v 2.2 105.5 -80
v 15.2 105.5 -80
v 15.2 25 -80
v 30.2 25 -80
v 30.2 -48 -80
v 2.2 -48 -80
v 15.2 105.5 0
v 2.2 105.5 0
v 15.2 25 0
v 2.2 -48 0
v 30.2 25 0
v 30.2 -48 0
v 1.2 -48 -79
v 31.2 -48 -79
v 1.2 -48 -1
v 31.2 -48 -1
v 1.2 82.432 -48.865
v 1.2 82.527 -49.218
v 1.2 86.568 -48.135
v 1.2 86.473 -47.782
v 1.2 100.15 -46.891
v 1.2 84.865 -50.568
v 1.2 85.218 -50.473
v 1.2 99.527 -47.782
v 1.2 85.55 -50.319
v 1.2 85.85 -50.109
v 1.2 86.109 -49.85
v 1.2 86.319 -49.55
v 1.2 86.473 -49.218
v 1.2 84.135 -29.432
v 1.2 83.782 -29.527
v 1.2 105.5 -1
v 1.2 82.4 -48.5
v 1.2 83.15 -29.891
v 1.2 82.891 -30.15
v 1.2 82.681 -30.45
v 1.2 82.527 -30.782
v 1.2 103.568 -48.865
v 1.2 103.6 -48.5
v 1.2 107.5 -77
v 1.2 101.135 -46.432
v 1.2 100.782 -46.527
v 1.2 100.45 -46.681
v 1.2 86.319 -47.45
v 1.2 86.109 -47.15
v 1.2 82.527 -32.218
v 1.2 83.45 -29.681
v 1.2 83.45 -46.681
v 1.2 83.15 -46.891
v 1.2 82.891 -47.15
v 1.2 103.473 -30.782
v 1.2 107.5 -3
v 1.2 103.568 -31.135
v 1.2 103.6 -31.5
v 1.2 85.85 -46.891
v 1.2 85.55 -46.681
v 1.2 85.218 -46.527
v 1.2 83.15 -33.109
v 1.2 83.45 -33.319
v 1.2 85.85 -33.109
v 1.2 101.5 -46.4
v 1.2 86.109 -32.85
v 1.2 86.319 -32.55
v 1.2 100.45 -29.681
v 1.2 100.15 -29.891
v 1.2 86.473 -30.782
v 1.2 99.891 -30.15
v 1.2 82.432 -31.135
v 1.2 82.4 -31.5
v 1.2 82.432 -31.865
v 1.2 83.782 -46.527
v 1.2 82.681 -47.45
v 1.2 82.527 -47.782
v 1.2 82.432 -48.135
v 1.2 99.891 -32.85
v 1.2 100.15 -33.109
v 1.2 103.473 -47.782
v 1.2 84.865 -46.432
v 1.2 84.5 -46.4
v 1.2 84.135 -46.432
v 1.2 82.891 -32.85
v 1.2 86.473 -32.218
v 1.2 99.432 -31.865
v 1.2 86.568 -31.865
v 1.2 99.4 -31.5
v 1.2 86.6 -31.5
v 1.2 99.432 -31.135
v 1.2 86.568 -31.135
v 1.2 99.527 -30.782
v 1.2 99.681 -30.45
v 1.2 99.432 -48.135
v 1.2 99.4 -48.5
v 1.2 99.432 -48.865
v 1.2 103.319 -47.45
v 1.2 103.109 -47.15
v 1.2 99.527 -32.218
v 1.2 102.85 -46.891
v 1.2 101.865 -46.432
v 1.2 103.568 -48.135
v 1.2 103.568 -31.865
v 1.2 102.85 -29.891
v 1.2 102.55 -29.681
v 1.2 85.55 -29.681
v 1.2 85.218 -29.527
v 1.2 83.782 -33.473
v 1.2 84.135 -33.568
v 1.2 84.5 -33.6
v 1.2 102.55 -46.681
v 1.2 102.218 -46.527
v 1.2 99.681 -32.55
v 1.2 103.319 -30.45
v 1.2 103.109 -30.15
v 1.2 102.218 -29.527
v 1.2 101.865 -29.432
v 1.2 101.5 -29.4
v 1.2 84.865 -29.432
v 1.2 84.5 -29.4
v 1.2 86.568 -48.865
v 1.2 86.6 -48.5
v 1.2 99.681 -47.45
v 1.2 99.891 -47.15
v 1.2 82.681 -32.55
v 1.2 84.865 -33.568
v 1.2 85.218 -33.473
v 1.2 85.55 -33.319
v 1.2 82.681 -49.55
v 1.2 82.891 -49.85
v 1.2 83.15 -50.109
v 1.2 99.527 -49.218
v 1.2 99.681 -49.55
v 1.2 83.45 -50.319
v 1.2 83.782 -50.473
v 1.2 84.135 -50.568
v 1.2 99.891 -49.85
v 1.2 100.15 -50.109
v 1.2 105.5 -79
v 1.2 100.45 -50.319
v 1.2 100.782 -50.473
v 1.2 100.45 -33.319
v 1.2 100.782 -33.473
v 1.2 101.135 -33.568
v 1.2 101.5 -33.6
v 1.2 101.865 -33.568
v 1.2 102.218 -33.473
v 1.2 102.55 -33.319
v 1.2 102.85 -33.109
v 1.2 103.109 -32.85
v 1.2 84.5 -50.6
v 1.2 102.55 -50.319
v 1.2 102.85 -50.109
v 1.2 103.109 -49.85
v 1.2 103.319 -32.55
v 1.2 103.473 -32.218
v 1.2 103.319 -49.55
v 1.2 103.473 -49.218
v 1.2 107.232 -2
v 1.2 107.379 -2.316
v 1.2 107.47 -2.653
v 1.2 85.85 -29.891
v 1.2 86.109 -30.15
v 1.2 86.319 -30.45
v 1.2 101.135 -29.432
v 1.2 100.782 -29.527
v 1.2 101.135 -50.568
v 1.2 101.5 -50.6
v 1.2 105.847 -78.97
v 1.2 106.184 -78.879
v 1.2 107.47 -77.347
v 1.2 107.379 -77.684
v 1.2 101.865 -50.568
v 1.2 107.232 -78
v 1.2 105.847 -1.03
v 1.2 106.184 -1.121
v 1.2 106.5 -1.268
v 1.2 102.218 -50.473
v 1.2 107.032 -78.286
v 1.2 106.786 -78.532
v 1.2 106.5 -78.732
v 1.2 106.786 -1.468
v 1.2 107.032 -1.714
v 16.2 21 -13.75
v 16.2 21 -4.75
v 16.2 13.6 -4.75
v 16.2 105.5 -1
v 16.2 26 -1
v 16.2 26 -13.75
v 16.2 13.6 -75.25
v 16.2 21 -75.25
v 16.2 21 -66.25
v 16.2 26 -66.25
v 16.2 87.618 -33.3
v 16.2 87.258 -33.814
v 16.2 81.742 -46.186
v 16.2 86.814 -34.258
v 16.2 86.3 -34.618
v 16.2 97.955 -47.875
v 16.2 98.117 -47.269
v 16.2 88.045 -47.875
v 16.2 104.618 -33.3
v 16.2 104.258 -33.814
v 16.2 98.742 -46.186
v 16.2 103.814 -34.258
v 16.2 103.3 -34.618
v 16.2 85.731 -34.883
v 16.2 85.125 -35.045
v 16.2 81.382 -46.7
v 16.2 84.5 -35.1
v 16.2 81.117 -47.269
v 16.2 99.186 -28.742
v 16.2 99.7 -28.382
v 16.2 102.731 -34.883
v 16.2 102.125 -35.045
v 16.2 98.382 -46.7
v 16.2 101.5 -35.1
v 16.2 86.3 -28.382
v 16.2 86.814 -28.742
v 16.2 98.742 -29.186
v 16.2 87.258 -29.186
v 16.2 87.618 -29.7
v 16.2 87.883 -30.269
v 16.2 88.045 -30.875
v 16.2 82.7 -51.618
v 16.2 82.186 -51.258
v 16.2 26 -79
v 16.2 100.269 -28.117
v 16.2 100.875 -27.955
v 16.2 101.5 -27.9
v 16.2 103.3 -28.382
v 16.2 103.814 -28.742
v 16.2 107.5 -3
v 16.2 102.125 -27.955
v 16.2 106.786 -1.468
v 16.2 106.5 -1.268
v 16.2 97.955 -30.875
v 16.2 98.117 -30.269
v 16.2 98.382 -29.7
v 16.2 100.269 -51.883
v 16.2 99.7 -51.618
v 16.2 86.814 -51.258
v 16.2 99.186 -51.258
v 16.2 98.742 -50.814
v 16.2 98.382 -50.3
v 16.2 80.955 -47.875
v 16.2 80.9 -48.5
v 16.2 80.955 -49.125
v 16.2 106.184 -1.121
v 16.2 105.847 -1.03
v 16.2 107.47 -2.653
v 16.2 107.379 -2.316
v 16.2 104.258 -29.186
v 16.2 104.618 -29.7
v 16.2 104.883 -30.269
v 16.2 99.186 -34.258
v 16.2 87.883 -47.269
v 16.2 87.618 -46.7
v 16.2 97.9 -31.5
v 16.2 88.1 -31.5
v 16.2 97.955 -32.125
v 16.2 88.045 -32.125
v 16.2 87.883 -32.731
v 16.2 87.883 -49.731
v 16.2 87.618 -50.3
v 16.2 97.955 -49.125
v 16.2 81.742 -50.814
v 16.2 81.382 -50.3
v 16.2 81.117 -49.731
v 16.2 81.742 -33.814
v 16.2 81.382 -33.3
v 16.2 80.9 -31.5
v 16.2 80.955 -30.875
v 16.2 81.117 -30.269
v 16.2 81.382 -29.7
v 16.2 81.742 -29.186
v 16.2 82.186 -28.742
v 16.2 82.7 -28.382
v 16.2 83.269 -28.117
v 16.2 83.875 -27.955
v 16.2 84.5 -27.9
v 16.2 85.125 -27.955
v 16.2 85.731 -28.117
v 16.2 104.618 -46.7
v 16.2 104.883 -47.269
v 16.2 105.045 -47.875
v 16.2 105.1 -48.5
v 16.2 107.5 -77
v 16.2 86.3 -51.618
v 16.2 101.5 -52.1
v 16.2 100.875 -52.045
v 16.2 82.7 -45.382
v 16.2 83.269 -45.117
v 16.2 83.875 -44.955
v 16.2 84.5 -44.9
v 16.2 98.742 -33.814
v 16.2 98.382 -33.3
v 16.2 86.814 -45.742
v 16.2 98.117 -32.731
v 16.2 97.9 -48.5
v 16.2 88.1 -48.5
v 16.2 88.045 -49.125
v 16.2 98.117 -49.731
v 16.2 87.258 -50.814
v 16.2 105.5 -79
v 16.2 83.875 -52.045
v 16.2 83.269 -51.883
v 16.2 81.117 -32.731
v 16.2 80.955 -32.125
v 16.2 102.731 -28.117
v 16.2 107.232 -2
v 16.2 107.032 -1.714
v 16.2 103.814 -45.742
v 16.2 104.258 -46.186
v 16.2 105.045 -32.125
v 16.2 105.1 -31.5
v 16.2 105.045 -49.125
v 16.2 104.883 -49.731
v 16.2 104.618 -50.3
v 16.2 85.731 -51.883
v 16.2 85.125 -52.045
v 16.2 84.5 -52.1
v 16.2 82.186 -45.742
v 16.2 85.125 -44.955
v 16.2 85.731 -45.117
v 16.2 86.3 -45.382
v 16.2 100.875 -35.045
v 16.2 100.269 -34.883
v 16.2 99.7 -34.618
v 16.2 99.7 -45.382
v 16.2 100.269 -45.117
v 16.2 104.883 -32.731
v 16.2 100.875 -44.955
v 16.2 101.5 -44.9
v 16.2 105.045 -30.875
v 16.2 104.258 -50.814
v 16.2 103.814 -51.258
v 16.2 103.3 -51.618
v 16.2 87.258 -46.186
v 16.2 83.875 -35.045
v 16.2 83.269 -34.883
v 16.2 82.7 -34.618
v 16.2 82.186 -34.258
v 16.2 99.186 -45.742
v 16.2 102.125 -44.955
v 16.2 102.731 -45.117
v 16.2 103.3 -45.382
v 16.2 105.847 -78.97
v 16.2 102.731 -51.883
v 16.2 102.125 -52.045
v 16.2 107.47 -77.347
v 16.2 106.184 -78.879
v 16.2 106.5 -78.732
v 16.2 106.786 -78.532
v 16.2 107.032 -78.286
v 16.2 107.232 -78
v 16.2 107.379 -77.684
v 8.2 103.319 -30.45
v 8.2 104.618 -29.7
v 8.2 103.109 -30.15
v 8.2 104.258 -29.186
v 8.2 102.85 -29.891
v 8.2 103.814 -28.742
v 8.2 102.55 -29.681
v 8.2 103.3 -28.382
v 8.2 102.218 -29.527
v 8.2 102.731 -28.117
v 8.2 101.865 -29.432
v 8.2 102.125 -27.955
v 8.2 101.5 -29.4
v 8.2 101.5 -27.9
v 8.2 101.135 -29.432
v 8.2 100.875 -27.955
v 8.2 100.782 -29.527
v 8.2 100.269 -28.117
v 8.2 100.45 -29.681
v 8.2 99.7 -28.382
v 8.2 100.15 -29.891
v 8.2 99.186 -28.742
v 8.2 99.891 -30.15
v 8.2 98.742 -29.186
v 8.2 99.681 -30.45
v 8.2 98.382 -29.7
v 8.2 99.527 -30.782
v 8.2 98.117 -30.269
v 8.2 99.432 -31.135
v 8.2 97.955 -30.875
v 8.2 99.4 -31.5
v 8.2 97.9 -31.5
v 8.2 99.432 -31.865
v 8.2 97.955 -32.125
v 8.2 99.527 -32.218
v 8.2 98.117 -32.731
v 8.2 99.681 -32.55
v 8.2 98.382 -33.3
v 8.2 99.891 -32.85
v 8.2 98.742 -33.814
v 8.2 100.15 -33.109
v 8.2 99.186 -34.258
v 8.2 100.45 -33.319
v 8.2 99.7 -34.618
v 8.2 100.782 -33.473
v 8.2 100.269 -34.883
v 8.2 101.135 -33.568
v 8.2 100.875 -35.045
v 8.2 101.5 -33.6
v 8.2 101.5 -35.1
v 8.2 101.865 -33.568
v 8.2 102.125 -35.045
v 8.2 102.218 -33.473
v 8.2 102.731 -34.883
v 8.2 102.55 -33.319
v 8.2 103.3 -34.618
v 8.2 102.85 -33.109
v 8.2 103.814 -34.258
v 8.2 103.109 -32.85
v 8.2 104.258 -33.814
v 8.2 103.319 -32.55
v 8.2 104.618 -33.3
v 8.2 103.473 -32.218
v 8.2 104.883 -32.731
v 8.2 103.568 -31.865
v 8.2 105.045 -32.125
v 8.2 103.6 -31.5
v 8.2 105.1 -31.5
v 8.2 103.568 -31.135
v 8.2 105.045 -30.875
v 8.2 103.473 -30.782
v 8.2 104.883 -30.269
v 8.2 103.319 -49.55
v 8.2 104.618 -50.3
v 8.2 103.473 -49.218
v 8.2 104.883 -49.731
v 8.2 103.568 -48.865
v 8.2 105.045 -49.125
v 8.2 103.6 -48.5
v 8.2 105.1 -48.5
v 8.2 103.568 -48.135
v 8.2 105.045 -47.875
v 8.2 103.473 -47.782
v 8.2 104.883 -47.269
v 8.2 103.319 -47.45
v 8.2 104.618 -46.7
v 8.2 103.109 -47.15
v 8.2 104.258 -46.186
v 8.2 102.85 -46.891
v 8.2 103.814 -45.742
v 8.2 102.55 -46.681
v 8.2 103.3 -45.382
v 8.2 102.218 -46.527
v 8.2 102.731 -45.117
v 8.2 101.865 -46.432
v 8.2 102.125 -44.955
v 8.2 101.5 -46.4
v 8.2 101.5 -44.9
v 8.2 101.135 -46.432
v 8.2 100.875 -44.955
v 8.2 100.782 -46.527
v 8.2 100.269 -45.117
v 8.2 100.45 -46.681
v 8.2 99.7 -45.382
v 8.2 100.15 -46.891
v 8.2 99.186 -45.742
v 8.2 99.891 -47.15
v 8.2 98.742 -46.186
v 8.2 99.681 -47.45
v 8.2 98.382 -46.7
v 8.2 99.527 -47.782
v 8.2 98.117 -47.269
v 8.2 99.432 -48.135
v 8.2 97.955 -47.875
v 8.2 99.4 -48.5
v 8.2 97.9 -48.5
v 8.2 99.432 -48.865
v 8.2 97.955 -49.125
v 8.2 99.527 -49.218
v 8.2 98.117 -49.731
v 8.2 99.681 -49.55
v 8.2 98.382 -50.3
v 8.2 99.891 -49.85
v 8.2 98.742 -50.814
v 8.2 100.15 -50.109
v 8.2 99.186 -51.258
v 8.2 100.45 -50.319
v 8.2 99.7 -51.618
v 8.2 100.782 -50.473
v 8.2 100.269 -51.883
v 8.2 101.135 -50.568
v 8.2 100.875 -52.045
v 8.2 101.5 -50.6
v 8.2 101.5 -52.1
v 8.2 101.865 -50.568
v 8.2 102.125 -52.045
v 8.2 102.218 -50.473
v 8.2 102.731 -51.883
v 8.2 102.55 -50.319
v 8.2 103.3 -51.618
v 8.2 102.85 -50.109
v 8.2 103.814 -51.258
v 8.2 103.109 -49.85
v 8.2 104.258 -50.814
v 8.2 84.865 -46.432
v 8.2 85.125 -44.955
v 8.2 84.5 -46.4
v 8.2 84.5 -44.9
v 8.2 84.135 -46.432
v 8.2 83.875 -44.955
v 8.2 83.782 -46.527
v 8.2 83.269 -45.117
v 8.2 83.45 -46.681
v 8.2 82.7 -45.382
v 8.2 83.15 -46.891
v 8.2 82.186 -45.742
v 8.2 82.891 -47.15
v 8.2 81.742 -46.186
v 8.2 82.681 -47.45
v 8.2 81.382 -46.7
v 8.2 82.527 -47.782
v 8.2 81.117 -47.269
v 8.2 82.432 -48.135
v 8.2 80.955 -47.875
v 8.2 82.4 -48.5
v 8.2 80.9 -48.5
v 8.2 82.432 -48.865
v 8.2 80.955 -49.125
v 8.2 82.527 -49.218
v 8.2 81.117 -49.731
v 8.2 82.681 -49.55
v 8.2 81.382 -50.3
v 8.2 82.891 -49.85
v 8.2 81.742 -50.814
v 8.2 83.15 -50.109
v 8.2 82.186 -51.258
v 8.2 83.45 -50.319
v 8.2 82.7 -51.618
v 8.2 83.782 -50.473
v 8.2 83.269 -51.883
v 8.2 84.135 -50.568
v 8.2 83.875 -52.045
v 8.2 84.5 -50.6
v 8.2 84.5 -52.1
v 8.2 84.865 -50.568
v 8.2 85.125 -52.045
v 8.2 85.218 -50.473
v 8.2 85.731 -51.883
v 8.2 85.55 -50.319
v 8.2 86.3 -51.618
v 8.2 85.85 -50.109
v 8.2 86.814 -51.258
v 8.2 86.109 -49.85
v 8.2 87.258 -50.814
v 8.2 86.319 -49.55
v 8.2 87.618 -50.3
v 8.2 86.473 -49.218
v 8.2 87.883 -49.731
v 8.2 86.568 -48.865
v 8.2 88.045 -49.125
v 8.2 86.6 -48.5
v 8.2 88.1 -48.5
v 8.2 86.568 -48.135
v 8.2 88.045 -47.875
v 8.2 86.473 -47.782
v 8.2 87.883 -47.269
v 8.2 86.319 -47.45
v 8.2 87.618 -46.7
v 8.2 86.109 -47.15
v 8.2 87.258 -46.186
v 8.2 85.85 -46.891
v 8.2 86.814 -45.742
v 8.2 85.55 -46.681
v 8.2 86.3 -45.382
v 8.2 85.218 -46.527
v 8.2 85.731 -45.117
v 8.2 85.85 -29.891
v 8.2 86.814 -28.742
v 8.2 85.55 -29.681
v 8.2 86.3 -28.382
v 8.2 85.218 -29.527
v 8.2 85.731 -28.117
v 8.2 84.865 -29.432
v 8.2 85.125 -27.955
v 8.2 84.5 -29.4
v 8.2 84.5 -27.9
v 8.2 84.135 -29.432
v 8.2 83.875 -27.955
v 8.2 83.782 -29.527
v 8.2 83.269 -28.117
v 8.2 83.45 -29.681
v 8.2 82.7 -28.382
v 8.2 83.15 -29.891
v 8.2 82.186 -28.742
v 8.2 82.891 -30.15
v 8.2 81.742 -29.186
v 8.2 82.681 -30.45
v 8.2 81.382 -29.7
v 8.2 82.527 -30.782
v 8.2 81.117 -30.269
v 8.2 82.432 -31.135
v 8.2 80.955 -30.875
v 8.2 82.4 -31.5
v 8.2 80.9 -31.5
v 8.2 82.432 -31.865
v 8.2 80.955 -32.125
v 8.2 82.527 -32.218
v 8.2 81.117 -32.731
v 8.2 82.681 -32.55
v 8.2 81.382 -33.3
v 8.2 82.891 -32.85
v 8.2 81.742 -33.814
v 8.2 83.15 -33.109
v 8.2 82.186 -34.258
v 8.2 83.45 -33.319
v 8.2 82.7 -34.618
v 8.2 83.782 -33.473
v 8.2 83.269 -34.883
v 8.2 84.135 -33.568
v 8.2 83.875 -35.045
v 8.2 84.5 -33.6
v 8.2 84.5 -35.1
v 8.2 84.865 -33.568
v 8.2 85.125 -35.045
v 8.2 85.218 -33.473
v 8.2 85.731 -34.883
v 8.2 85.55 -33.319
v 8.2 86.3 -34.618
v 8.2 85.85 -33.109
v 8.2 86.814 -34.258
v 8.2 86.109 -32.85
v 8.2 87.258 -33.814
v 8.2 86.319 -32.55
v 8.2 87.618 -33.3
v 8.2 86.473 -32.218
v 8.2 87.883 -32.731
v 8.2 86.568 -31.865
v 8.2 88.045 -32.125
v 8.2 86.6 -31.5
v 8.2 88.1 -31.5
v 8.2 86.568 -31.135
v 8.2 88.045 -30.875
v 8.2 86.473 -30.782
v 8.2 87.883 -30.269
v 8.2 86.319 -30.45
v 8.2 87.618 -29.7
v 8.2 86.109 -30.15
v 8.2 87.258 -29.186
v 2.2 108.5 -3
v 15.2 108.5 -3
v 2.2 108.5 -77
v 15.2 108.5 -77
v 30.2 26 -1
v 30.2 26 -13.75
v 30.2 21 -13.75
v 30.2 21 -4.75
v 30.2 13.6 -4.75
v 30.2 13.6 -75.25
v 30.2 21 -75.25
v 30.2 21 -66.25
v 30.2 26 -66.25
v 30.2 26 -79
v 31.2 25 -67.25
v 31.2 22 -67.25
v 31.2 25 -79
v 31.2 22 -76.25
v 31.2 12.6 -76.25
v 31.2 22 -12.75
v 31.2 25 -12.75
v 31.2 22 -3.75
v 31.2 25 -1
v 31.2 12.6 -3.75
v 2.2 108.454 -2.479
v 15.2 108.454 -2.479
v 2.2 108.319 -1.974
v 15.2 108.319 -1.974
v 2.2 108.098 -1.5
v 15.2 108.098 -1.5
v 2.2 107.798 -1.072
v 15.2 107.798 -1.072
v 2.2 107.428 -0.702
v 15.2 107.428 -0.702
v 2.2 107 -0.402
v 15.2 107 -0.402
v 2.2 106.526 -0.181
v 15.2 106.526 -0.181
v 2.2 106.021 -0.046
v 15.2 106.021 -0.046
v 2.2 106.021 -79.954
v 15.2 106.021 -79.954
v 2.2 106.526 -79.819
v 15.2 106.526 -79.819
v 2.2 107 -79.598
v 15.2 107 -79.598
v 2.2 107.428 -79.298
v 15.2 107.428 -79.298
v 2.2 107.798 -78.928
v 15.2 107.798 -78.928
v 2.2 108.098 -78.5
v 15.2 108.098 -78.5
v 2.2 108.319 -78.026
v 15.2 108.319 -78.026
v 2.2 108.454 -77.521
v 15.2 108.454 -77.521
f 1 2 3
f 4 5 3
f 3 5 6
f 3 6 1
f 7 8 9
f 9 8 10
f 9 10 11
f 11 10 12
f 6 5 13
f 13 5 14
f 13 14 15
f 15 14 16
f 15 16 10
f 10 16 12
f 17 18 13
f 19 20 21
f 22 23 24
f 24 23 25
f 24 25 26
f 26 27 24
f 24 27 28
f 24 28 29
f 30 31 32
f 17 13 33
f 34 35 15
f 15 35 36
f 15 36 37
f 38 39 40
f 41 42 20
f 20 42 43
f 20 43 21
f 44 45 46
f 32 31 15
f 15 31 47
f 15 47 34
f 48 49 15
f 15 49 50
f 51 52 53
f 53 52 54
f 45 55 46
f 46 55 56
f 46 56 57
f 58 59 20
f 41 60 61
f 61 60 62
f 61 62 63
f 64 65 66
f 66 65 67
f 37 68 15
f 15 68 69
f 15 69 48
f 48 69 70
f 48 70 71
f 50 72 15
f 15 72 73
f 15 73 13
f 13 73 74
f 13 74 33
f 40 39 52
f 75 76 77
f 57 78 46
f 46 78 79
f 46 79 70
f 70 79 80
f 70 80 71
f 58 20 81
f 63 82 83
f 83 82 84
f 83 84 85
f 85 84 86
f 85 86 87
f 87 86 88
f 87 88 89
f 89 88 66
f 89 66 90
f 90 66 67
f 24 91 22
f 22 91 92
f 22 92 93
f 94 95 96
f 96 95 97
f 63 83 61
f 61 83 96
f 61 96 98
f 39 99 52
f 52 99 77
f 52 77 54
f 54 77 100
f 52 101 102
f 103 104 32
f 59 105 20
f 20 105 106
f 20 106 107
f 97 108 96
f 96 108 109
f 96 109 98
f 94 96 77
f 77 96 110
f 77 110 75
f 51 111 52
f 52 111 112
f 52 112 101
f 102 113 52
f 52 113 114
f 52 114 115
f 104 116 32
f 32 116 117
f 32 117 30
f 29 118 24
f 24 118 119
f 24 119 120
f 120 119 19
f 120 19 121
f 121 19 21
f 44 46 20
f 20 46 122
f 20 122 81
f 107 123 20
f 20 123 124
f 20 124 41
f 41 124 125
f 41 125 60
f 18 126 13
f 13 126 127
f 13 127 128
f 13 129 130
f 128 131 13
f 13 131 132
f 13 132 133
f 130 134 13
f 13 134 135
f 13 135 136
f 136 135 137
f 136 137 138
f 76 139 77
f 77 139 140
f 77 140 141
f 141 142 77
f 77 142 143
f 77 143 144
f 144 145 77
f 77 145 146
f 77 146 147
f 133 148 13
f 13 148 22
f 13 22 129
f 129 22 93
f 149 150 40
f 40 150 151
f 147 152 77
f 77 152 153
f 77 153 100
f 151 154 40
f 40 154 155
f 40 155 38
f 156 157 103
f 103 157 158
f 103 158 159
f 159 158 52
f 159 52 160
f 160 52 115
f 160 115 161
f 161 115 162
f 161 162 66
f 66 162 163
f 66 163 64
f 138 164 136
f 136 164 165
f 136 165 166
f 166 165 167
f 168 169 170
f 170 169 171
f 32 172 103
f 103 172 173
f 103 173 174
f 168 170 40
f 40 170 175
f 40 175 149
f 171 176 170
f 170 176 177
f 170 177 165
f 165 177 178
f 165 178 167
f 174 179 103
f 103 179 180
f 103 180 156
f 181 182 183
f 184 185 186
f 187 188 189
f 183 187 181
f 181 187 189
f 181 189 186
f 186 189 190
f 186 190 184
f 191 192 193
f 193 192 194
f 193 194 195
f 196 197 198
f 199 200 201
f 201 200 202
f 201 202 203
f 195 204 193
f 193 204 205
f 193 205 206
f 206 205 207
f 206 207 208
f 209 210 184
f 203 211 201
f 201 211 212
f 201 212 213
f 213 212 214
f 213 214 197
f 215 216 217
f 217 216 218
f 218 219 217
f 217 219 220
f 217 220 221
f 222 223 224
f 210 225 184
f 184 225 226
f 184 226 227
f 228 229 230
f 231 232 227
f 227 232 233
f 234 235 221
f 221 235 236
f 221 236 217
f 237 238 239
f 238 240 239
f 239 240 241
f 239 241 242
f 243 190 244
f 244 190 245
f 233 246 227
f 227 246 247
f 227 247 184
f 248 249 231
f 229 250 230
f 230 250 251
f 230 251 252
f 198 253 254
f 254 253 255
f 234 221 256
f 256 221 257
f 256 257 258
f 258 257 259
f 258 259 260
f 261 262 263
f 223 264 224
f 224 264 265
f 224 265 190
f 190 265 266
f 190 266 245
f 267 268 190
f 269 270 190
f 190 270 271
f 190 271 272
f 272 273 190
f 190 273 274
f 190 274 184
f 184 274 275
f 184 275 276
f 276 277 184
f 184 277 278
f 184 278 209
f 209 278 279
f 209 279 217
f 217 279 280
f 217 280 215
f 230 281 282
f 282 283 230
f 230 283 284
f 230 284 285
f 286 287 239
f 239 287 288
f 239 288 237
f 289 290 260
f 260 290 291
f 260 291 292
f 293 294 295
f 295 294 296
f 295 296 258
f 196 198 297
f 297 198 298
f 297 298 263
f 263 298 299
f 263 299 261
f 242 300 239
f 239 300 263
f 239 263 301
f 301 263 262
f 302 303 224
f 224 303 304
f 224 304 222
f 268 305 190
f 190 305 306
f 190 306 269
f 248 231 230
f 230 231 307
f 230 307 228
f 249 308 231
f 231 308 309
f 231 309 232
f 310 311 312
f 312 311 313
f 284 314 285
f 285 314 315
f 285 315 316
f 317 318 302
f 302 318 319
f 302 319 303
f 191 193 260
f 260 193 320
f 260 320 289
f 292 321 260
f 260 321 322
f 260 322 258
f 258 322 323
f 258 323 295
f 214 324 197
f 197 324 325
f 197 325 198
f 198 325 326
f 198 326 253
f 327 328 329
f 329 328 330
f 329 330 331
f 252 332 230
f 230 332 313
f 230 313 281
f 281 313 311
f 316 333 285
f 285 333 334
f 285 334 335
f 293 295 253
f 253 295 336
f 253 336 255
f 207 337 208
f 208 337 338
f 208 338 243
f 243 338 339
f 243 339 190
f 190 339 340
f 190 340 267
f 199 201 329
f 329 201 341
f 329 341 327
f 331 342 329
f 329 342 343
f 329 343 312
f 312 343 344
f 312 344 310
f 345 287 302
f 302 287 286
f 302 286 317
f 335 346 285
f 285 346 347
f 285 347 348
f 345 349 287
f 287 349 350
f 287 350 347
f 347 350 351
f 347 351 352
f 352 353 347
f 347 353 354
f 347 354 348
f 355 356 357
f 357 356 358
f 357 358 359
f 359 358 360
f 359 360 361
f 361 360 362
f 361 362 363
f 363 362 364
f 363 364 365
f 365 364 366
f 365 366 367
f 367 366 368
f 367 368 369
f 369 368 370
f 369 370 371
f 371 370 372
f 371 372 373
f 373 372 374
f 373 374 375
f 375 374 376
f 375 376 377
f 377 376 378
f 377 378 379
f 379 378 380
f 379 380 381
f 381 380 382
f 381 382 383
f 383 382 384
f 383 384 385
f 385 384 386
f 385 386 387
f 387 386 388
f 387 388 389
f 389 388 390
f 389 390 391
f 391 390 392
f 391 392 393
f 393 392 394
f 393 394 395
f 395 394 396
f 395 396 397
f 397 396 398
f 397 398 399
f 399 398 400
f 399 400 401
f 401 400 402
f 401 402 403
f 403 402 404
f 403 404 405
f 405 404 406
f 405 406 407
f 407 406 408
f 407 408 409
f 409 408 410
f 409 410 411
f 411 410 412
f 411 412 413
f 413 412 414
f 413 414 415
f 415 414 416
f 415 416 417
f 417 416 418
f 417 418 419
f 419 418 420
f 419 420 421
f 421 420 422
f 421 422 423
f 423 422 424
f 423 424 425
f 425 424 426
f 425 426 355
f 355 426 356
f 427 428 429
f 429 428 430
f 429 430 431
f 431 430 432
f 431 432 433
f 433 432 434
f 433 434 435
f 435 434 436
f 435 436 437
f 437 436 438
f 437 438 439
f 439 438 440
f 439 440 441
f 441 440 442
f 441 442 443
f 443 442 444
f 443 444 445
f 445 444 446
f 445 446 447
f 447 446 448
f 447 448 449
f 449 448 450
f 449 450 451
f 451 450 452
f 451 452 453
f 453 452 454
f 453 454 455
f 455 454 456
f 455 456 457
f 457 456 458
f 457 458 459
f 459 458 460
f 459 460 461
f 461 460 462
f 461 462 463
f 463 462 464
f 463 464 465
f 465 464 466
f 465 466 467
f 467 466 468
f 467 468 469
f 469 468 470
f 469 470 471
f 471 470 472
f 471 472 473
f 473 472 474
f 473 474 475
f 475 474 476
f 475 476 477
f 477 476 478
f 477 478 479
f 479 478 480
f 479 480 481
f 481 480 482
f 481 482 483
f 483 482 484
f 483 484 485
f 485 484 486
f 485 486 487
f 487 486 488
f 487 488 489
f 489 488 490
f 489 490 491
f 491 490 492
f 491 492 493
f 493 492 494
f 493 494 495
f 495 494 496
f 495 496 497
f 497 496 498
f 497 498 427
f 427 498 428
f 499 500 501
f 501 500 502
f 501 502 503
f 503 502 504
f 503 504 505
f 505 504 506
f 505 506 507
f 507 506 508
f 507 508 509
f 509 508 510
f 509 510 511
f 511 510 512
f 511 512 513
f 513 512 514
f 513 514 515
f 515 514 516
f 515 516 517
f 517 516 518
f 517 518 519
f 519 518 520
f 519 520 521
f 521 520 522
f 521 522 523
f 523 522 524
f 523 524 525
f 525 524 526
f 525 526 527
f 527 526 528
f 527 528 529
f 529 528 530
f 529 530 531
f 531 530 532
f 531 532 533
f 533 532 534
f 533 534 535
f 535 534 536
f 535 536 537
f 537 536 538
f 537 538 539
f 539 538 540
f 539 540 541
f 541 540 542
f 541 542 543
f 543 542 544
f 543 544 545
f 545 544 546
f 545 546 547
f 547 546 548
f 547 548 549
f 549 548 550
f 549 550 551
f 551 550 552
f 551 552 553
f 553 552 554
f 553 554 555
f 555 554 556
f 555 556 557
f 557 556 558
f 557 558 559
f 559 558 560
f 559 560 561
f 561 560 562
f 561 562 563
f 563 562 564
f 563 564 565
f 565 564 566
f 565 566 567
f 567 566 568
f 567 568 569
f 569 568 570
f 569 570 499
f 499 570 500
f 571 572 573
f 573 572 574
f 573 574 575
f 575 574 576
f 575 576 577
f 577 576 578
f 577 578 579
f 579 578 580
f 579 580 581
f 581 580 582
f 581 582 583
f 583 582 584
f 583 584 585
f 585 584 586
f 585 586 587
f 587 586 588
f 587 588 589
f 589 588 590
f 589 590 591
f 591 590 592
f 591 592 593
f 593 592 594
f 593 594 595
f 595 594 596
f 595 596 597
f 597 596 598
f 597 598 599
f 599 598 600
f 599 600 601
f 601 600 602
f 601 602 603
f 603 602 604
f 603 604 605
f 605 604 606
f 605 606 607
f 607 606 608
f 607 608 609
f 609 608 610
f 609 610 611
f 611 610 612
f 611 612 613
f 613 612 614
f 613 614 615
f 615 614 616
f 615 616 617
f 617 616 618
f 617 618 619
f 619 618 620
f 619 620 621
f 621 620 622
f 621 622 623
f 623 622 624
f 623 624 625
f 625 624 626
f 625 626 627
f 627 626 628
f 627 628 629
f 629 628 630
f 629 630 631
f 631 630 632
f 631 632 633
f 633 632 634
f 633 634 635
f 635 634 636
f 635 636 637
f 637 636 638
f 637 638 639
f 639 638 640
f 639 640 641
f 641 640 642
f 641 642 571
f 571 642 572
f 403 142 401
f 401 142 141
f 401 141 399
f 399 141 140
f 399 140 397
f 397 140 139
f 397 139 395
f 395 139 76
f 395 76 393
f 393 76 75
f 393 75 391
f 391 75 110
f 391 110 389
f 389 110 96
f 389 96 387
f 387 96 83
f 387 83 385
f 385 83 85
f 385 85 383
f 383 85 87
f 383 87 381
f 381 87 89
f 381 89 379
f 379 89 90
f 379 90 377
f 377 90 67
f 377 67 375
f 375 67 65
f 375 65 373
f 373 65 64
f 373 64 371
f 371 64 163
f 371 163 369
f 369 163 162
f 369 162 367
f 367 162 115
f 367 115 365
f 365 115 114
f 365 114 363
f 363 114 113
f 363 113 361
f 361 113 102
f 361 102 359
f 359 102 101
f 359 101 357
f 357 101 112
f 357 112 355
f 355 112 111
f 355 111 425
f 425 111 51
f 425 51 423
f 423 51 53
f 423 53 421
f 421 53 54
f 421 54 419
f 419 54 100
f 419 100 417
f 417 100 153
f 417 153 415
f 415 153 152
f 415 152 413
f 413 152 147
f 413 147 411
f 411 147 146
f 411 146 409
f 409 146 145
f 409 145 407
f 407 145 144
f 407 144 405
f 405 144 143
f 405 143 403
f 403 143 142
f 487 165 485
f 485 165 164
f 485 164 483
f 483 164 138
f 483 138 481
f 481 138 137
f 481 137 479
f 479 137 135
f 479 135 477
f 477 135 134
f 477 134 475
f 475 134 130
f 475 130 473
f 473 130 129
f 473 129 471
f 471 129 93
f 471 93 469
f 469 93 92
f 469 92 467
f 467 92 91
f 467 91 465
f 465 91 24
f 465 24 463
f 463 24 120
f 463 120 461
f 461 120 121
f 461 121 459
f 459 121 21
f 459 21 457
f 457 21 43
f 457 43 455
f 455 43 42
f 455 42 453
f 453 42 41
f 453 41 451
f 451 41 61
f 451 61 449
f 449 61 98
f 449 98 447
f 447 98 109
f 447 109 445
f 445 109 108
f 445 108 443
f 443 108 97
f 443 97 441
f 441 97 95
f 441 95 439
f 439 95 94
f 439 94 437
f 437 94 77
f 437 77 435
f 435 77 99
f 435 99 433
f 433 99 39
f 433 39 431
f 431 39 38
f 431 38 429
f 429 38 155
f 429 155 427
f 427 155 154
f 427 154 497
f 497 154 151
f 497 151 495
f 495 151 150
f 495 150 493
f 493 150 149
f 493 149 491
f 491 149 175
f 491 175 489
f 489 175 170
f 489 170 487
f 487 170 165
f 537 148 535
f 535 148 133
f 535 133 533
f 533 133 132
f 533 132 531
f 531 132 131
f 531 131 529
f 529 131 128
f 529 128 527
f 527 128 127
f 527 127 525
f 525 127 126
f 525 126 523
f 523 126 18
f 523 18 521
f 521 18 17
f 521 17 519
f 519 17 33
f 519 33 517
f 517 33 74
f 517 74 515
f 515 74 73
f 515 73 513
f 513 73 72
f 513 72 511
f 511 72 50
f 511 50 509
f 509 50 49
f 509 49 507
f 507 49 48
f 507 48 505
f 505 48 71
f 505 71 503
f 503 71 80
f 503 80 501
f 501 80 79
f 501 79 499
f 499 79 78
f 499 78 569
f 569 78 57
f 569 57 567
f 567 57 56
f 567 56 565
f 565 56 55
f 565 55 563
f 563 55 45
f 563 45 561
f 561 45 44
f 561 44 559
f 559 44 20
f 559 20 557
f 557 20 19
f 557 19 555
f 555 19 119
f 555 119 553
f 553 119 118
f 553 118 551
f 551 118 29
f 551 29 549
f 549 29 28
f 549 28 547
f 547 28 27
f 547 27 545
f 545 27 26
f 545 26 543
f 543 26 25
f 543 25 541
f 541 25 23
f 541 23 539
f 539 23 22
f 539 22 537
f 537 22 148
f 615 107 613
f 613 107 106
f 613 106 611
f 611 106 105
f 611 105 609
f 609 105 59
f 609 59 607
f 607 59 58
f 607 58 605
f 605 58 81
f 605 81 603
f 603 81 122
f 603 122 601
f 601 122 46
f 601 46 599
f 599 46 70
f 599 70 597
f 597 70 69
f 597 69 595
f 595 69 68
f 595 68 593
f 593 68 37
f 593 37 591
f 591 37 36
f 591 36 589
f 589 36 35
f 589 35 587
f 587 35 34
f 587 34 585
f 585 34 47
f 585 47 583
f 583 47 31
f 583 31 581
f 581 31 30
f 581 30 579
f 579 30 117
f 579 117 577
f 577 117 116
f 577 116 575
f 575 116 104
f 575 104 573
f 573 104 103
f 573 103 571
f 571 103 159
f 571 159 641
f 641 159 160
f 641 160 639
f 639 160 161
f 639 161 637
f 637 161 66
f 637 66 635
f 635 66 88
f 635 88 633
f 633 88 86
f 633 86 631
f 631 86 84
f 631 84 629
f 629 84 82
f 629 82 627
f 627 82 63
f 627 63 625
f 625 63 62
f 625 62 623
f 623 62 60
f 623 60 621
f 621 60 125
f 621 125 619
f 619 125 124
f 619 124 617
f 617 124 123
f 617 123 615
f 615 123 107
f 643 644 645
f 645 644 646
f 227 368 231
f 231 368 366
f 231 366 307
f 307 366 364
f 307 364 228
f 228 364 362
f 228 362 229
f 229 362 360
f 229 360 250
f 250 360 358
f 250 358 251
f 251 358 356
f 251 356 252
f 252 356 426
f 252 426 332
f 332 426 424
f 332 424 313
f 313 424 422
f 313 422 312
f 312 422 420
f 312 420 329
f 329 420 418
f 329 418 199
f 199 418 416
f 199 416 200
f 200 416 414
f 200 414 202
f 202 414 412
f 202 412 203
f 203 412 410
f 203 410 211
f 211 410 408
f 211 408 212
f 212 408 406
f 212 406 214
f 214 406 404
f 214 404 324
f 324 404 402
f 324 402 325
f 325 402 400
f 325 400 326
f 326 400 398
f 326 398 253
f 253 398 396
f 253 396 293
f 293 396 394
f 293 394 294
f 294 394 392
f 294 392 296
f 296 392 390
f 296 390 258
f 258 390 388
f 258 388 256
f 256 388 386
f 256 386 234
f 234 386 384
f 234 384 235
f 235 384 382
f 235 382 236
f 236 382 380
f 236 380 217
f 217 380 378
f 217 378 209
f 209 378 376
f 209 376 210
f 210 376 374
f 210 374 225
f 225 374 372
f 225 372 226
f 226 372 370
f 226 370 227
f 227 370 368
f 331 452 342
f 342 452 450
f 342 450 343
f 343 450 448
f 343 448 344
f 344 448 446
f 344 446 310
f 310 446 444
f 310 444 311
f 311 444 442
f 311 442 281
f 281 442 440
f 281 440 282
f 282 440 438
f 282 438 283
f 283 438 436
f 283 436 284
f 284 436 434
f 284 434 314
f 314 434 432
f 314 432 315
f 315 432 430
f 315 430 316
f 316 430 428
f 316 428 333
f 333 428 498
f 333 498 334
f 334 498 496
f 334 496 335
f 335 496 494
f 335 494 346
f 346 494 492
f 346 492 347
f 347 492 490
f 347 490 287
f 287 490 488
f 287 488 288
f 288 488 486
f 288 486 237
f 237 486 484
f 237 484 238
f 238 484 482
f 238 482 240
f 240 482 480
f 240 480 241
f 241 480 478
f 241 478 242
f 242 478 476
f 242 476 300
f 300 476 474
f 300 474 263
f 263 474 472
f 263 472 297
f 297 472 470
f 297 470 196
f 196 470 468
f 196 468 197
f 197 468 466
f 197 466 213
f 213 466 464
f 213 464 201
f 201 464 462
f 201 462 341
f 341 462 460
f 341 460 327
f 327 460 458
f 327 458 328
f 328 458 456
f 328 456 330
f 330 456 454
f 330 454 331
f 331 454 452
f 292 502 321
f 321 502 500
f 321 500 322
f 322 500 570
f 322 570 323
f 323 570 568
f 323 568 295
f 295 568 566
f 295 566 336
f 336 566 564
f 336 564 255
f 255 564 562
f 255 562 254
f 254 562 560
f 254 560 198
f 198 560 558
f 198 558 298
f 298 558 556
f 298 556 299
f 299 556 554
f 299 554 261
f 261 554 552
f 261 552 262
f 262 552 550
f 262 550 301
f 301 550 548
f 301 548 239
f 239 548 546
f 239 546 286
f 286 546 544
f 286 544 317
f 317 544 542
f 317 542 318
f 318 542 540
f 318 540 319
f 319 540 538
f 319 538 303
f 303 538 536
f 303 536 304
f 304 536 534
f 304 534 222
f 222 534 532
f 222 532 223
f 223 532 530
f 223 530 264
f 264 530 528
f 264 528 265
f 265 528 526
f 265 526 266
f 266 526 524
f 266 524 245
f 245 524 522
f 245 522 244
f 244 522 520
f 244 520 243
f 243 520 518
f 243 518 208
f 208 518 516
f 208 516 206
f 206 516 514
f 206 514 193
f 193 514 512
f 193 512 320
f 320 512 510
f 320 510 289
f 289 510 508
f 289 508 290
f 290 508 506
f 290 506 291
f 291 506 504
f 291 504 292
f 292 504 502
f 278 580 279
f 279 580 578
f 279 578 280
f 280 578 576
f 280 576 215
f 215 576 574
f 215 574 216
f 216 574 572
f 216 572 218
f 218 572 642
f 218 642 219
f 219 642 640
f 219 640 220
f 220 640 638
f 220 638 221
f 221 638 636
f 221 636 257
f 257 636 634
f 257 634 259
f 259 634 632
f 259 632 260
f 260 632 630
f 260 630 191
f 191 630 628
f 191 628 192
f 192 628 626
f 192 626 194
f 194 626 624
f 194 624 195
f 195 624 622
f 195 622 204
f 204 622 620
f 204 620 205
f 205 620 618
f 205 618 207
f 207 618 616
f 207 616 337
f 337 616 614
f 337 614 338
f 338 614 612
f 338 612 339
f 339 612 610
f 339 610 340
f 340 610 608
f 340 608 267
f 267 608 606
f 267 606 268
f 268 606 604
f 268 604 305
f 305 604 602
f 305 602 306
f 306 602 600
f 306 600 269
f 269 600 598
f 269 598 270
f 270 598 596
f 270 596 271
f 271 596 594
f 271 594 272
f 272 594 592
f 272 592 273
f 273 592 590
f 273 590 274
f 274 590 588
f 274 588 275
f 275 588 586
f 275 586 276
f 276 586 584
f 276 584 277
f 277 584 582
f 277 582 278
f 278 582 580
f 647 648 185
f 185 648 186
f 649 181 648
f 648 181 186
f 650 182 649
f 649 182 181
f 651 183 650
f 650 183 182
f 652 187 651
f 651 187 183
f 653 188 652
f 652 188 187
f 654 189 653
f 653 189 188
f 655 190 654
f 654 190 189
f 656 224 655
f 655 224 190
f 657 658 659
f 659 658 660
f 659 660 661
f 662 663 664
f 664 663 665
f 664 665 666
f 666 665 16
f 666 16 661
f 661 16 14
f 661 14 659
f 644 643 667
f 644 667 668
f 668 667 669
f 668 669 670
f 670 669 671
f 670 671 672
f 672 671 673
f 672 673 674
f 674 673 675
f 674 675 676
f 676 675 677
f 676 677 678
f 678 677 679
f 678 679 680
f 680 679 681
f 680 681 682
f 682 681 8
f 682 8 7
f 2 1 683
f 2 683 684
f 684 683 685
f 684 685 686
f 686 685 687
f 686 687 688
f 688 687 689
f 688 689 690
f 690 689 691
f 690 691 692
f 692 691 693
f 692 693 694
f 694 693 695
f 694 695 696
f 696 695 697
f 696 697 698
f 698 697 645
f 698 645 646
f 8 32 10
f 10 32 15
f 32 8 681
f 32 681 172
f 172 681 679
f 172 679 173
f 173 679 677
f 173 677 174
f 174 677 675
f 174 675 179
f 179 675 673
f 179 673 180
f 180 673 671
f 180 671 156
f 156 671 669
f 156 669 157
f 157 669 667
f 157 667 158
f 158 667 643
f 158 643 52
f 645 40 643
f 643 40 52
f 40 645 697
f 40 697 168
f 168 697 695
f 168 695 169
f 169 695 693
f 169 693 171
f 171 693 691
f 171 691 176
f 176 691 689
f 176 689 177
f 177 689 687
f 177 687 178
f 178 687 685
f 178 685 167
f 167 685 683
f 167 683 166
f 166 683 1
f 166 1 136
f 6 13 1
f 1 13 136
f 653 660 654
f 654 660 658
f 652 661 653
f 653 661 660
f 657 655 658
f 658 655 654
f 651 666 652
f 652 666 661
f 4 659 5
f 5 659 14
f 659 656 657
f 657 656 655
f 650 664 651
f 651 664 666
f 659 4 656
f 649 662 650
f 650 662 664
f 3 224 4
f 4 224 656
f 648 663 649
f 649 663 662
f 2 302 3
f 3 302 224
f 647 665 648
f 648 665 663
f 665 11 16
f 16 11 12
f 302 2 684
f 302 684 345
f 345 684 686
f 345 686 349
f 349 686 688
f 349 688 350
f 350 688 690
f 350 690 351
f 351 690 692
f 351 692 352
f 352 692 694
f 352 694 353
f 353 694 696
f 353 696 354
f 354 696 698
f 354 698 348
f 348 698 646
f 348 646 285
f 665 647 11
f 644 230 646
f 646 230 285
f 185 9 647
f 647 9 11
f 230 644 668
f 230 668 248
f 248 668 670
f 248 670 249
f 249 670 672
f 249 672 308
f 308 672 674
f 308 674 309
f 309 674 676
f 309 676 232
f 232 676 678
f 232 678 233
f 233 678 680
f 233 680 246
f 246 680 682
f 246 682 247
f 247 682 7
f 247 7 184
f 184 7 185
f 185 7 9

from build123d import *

# Parameters (mm, degrees)
SKETCH1_W               = 100
SKETCH1_H               = 26
BOSS_EXTRUDE1_DEPTH     = 2
BOSS_EXTRUDE2_DEPTH     = 100
SKETCH3_W               = 25
SKETCH3_H               = 28
BOSS_EXTRUDE3_DEPTH     = 4
SKETCH4_R               = 2.1
CUT_EXTRUDE1_DEPTH      = 106.39449701
CUT_EXTRUDE2_DEPTH      = 105.537074763
CUT_EXTRUDE2_DEPTH_BACK = 105.537074763
SKETCH5_W               = 120
SKETCH5_H               = 46
SKETCH5_W_2             = 100
SKETCH5_H_2             = 26
SKETCH6_W               = 100
SKETCH6_H               = 26
SKETCH6_R               = 3.6
BOSS_EXTRUDE4_DEPTH     = 4.2
SKETCH8_W               = 100
SKETCH8_H               = 4
BOSS_EXTRUDE5_DEPTH     = 6
SKETCH9_W               = 100
SKETCH9_H               = 4
BOSS_EXTRUDE6_DEPTH     = 10.2
SKETCH10_W              = 4
SKETCH10_H              = 37.5
CUT_EXTRUDE3_DEPTH      = 106.682732743
SKETCH11_W              = 4
SKETCH11_H              = 25
CUT_EXTRUDE4_DEPTH      = 107.737247482
SKETCH13_W              = 10
SKETCH13_H              = 10
BOSS_EXTRUDE7_DEPTH     = 6.2
SKETCH14_W              = 4.2
SKETCH14_H              = 35.5
CUT_EXTRUDE5_DEPTH      = 107.737247482
SKETCH15_W              = 6
SKETCH15_H              = 100
CUT_EXTRUDE6_DEPTH      = 109.576424697
PODPORA_START           = -80
PODPORA_DEPTH           = 80
PODPORA_2_OUTLINE_W     = 10
PODPORA_2_OUTLINE_H     = 12.4
PODPORA_2_DEPTH         = 9.75
PODPORA_START_2         = -9.75
PODPORA_3_OUTLINE_W     = 10
PODPORA_3_OUTLINE_H     = 12.4
PODPORA_3_DEPTH         = 9.75
PODPORA_START_3         = -70.25
PODPORA_4_OUTLINE_W     = 10
PODPORA_4_OUTLINE_H     = 5
PODPORA_4_DEPTH         = 4
PODPORA_START_4         = -13.75
PODPORA_5_OUTLINE_W     = 10
PODPORA_5_OUTLINE_H     = 5
PODPORA_5_DEPTH         = 4
SKETCH16_W              = 80
SKETCH16_H              = 115
BOSS_EXTRUDE8_DEPTH     = 10
MOVE_FACE1_BY           = 10
MOVE_FACE2_BY           = 5
SKETCH17_W              = 10
SKETCH17_H              = 30
CUT_EXTRUDE7_DEPTH      = 150.52822476
MOVE_START              = 12.4
MOVE_FACE3_OUTLINE_R    = 3.6
MOVE_FACE3_DEPTH        = 3.8
SKETCH18_W              = 35.995257081
SKETCH18_H              = 98.541471116
CUT_EXTRUDE8_DEPTH      = 178.196049617
MOVE_FACE4_BY           = 4
DELETEFACE1_START       = 6.2
DELETEFACE1_OUTLINE_W   = 30
DELETEFACE1_OUTLINE_H   = 25.5
DELETEFACE1_DEPTH       = 4.2
SKETCH19_W              = 80
SKETCH19_H              = 10
CUT_EXTRUDE9_DEPTH      = 136.525827797
MOVE_START_2            = 106.5
MOVE_FACE5_OUTLINE_W    = 10
MOVE_FACE5_OUTLINE_H    = 80
MOVE_FACE5_DEPTH        = 2
FILLET1_R               = 3
MOVE_START_3            = -48.5
MOVE_FACE6_OUTLINE_W    = 25
MOVE_FACE6_OUTLINE_H    = 80
MOVE_FACE6_DEPTH        = 0.5
MOVE_START_4            = 1.2
MOVE_FACE7_OUTLINE_R    = 2.1
MOVE_FACE7_DEPTH        = 5
MOVE_FACE8_BY           = 5
MOVE_FACE8_2_BY         = 5
CHAMFER1_SIZE           = 1


with BuildPart() as part:
    # Sketch1 → Boss-Extrude1 (new body)
    with BuildSketch(Plane(origin=(0, 0, 0), x_dir=(0, 0, -1), z_dir=(1, 0, 0))):
        with Locations((50, 13)):
            Rectangle(SKETCH1_W, SKETCH1_H)
    extrude(amount=BOSS_EXTRUDE1_DEPTH)

    # Sketch2 → Boss-Extrude2 (add)
    with BuildSketch(Plane.XY):
        Polygon((2, 26), (2, 28), (-12, 28), (-12, 24), (-10, 24), (-10, 26), align=None)
    extrude(amount=-BOSS_EXTRUDE2_DEPTH)

    # Sketch3 → Boss-Extrude3 (add)
    with BuildSketch(Plane(origin=(2, 0, 0), x_dir=(0, 0, -1), z_dir=(1, 0, 0))):
        with Locations((50, 14)):
            Rectangle(SKETCH3_W, SKETCH3_H)
    extrude(amount=BOSS_EXTRUDE3_DEPTH)

    # Sketch4 → Cut-Extrude1 (cut, through all)
    with BuildSketch(Plane(origin=(6, 0, 0), x_dir=(0, 0, -1), z_dir=(1, 0, 0))):
        with Locations((41.5, 21)):
            Circle(SKETCH4_R)
        with Locations((58.5, 21)):
            Circle(SKETCH4_R)
        with Locations((58.5, 4)):
            Circle(SKETCH4_R)
        with Locations((41.5, 4)):
            Circle(SKETCH4_R)
    extrude(amount=-CUT_EXTRUDE1_DEPTH, mode=Mode.SUBTRACT)


with BuildPart() as body_2:
    # Mirror1: mirrored copy
    add(part.part.mirror(Plane(origin=(6, 0, 0), x_dir=(0, 0, 1), z_dir=(1, 0, 0))))

    # Sketch5 → Cut-Extrude2 (cut, two sides: drawn at the far end of the back side and taken through both)
    with BuildSketch(Plane(origin=(12, 0, 0), x_dir=(0, 0, -1), z_dir=(1, 0, 0)).offset(-CUT_EXTRUDE2_DEPTH_BACK)):
        with Locations((50, 13)):
            Rectangle(SKETCH5_W, SKETCH5_H)
        with Locations((50, 13)):
            Rectangle(SKETCH5_W_2, SKETCH5_H_2, mode=Mode.SUBTRACT)
    extrude(amount=CUT_EXTRUDE2_DEPTH + CUT_EXTRUDE2_DEPTH_BACK, mode=Mode.SUBTRACT)


with BuildPart() as body_2_2:
    # of the pieces the cut leaves, the one that is kept (cut_extrude2_keep)
    add(body_2.part.solids().sort_by_distance((12, 0, 0))[0])

    # Sketch6 → Boss-Extrude4 (add)
    with BuildSketch(Plane(origin=(12, 0, 0), x_dir=(0, 0, -1), z_dir=(1, 0, 0))):
        with Locations((50, 13)):
            Rectangle(SKETCH6_W, SKETCH6_H)
        with Locations((41.5, 21)):
            Circle(SKETCH6_R, mode=Mode.SUBTRACT)
        with Locations((58.5, 21)):
            Circle(SKETCH6_R, mode=Mode.SUBTRACT)
        with Locations((58.5, 4)):
            Circle(SKETCH6_R, mode=Mode.SUBTRACT)
        with Locations((41.5, 4)):
            Circle(SKETCH6_R, mode=Mode.SUBTRACT)
    extrude(amount=BOSS_EXTRUDE4_DEPTH)



with BuildPart() as body_2_3:
    # Sketch8 → Boss-Extrude5 (new body)
    with BuildSketch(Plane(origin=(16.2, 0, 0), x_dir=(0, 0, -1), z_dir=(1, 0, 0))):
        with Locations((50, -2)):
            Rectangle(SKETCH8_W, SKETCH8_H)
    extrude(amount=BOSS_EXTRUDE5_DEPTH)


with BuildPart() as body_2_2_1:
    add(body_2_2.part)

    add(body_2_3.part)  # Boss-Extrude6 merges body 2 3
    # Sketch9 → Boss-Extrude6 (add)
    with BuildSketch(Plane.ZY.offset(-16.2)):
        with Locations((-50, -2)):
            Rectangle(SKETCH9_W, SKETCH9_H)
    extrude(amount=BOSS_EXTRUDE6_DEPTH)

    # Sketch10 → Cut-Extrude3 (cut, through all)
    with BuildSketch(Plane(origin=(0, 0, 0), x_dir=(1, 0, 0), z_dir=(0, 1, 0))):
        with Locations((8, 81.25)):
            Rectangle(SKETCH10_W, SKETCH10_H)
        with Locations((8, 18.75)):
            Rectangle(SKETCH10_W, SKETCH10_H)
    extrude(amount=-CUT_EXTRUDE3_DEPTH, mode=Mode.SUBTRACT)

    # Sketch11 → Cut-Extrude4 (cut, through all)
    with BuildSketch(Plane(origin=(0, 26, 0), x_dir=(1, 0, 0), z_dir=(0, 1, 0))):
        with Locations((8, 50)):
            Rectangle(SKETCH11_W, SKETCH11_H)
    extrude(amount=-CUT_EXTRUDE4_DEPTH, mode=Mode.SUBTRACT)

    # Sketch13 → Boss-Extrude7 (add)
    with BuildSketch(Plane.ZY.offset(-10)):
        with Locations((-50, 31)):
            Rectangle(SKETCH13_W, SKETCH13_H)
    extrude(amount=-BOSS_EXTRUDE7_DEPTH)

    # Sketch14 → Cut-Extrude5 (cut, through all)
    with BuildSketch(Plane(origin=(0, 26, 0), x_dir=(1, 0, 0), z_dir=(0, 1, 0))):
        with Locations((12.1, 17.75)):
            Rectangle(SKETCH14_W, SKETCH14_H)
        with Locations((12.1, 82.25)):
            Rectangle(SKETCH14_W, SKETCH14_H)
    extrude(amount=-CUT_EXTRUDE5_DEPTH, mode=Mode.SUBTRACT)

    # Sketch15 → Cut-Extrude6 (cut, through all)
    with BuildSketch(Plane(origin=(0, 0, 0), x_dir=(1, 0, 0), z_dir=(0, 1, 0))):
        with Locations((19.2, 50)):
            Rectangle(SKETCH15_W, SKETCH15_H)
    extrude(amount=-CUT_EXTRUDE6_DEPTH, mode=Mode.SUBTRACT)


with BuildPart() as body_2_4:
    # podpora: read off the stored shape, not the designer's step
    # podpora outline → podpora (new body)
    with BuildSketch(Plane.XY.offset(PODPORA_START)):
        Polygon((-3.8, -48.5), (26.2, -48.5), (26.2, 13.6), (16.2, 13.6), (16.2, -38.5), (-3.8, -38.5), align=None)
    extrude(amount=PODPORA_DEPTH)

    # podpora 2 outline → podpora 2 (add)
    with BuildSketch(Plane.XY.offset(PODPORA_START)):
        with Locations((21.2, 19.8)):
            Rectangle(PODPORA_2_OUTLINE_W, PODPORA_2_OUTLINE_H)
    extrude(amount=PODPORA_2_DEPTH)

    # podpora 3 outline → podpora 3 (add)
    with BuildSketch(Plane.XY.offset(PODPORA_START_2)):
        with Locations((21.2, 19.8)):
            Rectangle(PODPORA_3_OUTLINE_W, PODPORA_3_OUTLINE_H)
    extrude(amount=PODPORA_3_DEPTH)

    # podpora 4 outline → podpora 4 (add)
    with BuildSketch(Plane.XY.offset(PODPORA_START_3)):
        with Locations((21.2, 23.5)):
            Rectangle(PODPORA_4_OUTLINE_W, PODPORA_4_OUTLINE_H)
    extrude(amount=PODPORA_4_DEPTH)

    # podpora 5 outline → podpora 5 (add)
    with BuildSketch(Plane.XY.offset(PODPORA_START_4)):
        with Locations((21.2, 23.5)):
            Rectangle(PODPORA_5_OUTLINE_W, PODPORA_5_OUTLINE_H)
    extrude(amount=PODPORA_5_DEPTH)

    # Move Face1: a face moved outward by 10.0
    extrude(body_2_4.faces().sort_by_distance((-3.8, -43.5, -40))[0], amount=MOVE_FACE1_BY, dir=(-1, 0, 0))

    # Move Face2: a face moved outward by 5.0
    extrude(body_2_4.faces().sort_by_distance((26.2, -15.422294183, -40))[0], amount=MOVE_FACE2_BY, dir=(1, 0, 0))


with BuildPart() as body_2_2_2:
    # Body-Move/Copy3: moved
    add(body_2_2_1.part.moved(Location((0, 0, 10))))


with BuildPart() as body_2_2_3:
    # Body-Move/Copy4: read off the stored shape, not the designer's step
    # Body-Move/Copy4: moved
    add(body_2_2_2.part.moved(Location((0, 17.6, 0))))


with BuildPart() as body_3:
    # Sketch16 → Boss-Extrude8 (new body)
    with BuildSketch(Plane.ZY.offset(-16.2)):
        with Locations((-40, 19)):
            Rectangle(SKETCH16_W, SKETCH16_H)
    extrude(amount=BOSS_EXTRUDE8_DEPTH)

    # Combine1: union body 2 4
    add(body_2_4.part)


with BuildPart() as body_2_2_4:
    # Body-Move/Copy5: read off the stored shape, not the designer's step
    # Body-Move/Copy5: moved
    add(body_2_2_3.part.moved(Location((0, 62.9, 0))))


with BuildPart() as body_2_2_5:
    # Body-Move/Copy6: read off the stored shape, not the designer's step
    # Body-Move/Copy6: moved
    add(body_2_2_4.part.moved(Location((-3.8, 0, 0))))

    # Combine2: union body 3
    add(body_3.part)

    # Sketch17 → Cut-Extrude7 (cut, through all)
    with BuildSketch(Plane(origin=(12.4, 0, 0), x_dir=(0, 0, -1), z_dir=(1, 0, 0))):
        with Locations((-5, 91.5)):
            Rectangle(SKETCH17_W, SKETCH17_H)
        with Locations((85, 91.5)):
            Rectangle(SKETCH17_W, SKETCH17_H)
    extrude(amount=-CUT_EXTRUDE7_DEPTH, mode=Mode.SUBTRACT)

    # Move Face3: read off the stored shape, not the designer's step
    # Move Face3 outline → Move Face3 (add)
    with BuildSketch(Plane.YZ.offset(MOVE_START)):
        Polygon((116.5, -35), (106.5, -35), (106.5, 0), (76.5, 0), (76.5, -80), (106.5, -80), (106.5, -45), (116.5, -45), align=None)
        with Locations((84.5, -48.5)):
            Circle(MOVE_FACE3_OUTLINE_R, mode=Mode.SUBTRACT)
        with Locations((101.5, -48.5)):
            Circle(MOVE_FACE3_OUTLINE_R, mode=Mode.SUBTRACT)
        with Locations((84.5, -31.5)):
            Circle(MOVE_FACE3_OUTLINE_R, mode=Mode.SUBTRACT)
        with Locations((101.5, -31.5)):
            Circle(MOVE_FACE3_OUTLINE_R, mode=Mode.SUBTRACT)
    extrude(amount=MOVE_FACE3_DEPTH)

    # Sketch18 → Cut-Extrude8 (cut, through all)
    with BuildSketch(Plane(origin=(0, 106.5, 0), x_dir=(1, 0, 0), z_dir=(0, 1, 0))):
        with Locations((13.065761379, 40)):
            Rectangle(SKETCH18_W, SKETCH18_H)
    extrude(amount=CUT_EXTRUDE8_DEPTH, mode=Mode.SUBTRACT)

    # Move Face4: a face moved outward by 4.0
    extrude(body_2_2_5.faces().sort_by_distance((-13.8, -43.5, -40))[0], amount=MOVE_FACE4_BY, dir=(-1, 0, 0))

    # DeleteFace1: read off the stored shape, not the designer's step
    # DeleteFace1 outline → DeleteFace1 (add)
    with BuildSketch(Plane.YZ.offset(DELETEFACE1_START)):
        with Locations((91.5, -67.25)):
            Rectangle(DELETEFACE1_OUTLINE_W, DELETEFACE1_OUTLINE_H)
        with Locations((91.5, -12.75)):
            Rectangle(DELETEFACE1_OUTLINE_W, DELETEFACE1_OUTLINE_H)
    extrude(amount=DELETEFACE1_DEPTH)

    # Sketch19 → Cut-Extrude9 (cut, through all)
    with BuildSketch(Plane.ZY.offset(-6.2)):
        with Locations((-40, -43.5)):
            Rectangle(SKETCH19_W, SKETCH19_H)
    extrude(amount=CUT_EXTRUDE9_DEPTH, mode=Mode.SUBTRACT)

    # Move Face5: read off the stored shape, not the designer's step
    # Move Face5 outline → Move Face5 (add)
    with BuildSketch(Plane(origin=(0, 0, 0), x_dir=(1, 0, 0), z_dir=(0, 1, 0)).offset(MOVE_START_2)):
        with Locations((11.2, 40)):
            Rectangle(MOVE_FACE5_OUTLINE_W, MOVE_FACE5_OUTLINE_H)
    extrude(amount=MOVE_FACE5_DEPTH)

    # Fillet1
    fillet1_edges = [body_2_2_5.edges().sort_by_distance(p)[0] for p in [
        (11.2, 108.5, 0),
        (11.2, 108.5, -80),
    ]]
    fillet(fillet1_edges, radius=FILLET1_R)

    # Move Face6: read off the stored shape, not the designer's step
    # Move Face6 outline → Move Face6 (cut)
    with BuildSketch(Plane(origin=(0, 0, 0), x_dir=(1, 0, 0), z_dir=(0, 1, 0)).offset(MOVE_START_3)):
        with Locations((18.7, 40)):
            Rectangle(MOVE_FACE6_OUTLINE_W, MOVE_FACE6_OUTLINE_H)
    extrude(amount=MOVE_FACE6_DEPTH, mode=Mode.SUBTRACT)

    # Move Face7: read off the stored shape, not the designer's step
    # Move Face7 outline → Move Face7 (add)
    with BuildSketch(Plane.YZ.offset(MOVE_START_4)):
        with BuildLine():
            Line((-48, -80), (105.5, -80))
            ThreePointArc((105.5, -80), (107.621320344, -79.121320344), (108.5, -77))
            Line((108.5, -77), (108.5, -3))
            ThreePointArc((108.5, -3), (107.621320344, -0.878679656), (105.5, 0))
            Line((105.5, 0), (-48, 0))
            Line((-48, 0), (-48, -80))
        make_face()
        with Locations((84.5, -48.5)):
            Circle(MOVE_FACE7_OUTLINE_R, mode=Mode.SUBTRACT)
        with Locations((101.5, -48.5)):
            Circle(MOVE_FACE7_OUTLINE_R, mode=Mode.SUBTRACT)
        with Locations((84.5, -31.5)):
            Circle(MOVE_FACE7_OUTLINE_R, mode=Mode.SUBTRACT)
        with Locations((101.5, -31.5)):
            Circle(MOVE_FACE7_OUTLINE_R, mode=Mode.SUBTRACT)
    extrude(amount=MOVE_FACE7_DEPTH)

    # Move Face8: a face moved inward by 5.0
    extrude(body_2_2_5.faces().sort_by_distance((23.7, 17.3, -70.25))[0], amount=MOVE_FACE8_BY, dir=(0, 0, -1), mode=Mode.SUBTRACT)

    # Move Face8 2: a face moved inward by 5.0
    extrude(body_2_2_5.faces().sort_by_distance((23.7, 17.3, -9.75))[0], amount=MOVE_FACE8_2_BY, dir=(0, 0, 1), mode=Mode.SUBTRACT)

    # Chamfer1
    chamfer1_edges = [body_2_2_5.edges().sort_by_distance(p)[0] for p in [
        (23.7, 26, -80),
        (31.2, -11, -80),
        (31.2, -11, 0),
        (16.2, 65.75, 0),
        (1.2, 28.75, 0),
        (31.2, 26, -6.875),
        (23.7, 26, 0),
        (31.2, 23.5, -13.75),
        (31.2, 21, -9.25),
        (31.2, 17.3, -4.75),
        (31.2, 13.6, -40),
        (31.2, 17.3, -75.25),
        (31.2, 21, -70.75),
        (31.2, 23.5, -66.25),
        (31.2, 26, -73.125),
        (1.2, 108.5, -40),
        (16.2, 108.5, -40),
        (16.2, 65.75, -80),
        (16.2, 107.621320344, -79.121320344),
        (16.2, 107.621320344, -0.878679656),
        (1.2, 28.75, -80),
        (1.2, 107.621320344, -79.121320344),
        (1.2, 107.621320344, -0.878679656),
    ]]
    chamfer(chamfer1_edges, length=CHAMFER1_SIZE)


solid = body_2_2_5.part
